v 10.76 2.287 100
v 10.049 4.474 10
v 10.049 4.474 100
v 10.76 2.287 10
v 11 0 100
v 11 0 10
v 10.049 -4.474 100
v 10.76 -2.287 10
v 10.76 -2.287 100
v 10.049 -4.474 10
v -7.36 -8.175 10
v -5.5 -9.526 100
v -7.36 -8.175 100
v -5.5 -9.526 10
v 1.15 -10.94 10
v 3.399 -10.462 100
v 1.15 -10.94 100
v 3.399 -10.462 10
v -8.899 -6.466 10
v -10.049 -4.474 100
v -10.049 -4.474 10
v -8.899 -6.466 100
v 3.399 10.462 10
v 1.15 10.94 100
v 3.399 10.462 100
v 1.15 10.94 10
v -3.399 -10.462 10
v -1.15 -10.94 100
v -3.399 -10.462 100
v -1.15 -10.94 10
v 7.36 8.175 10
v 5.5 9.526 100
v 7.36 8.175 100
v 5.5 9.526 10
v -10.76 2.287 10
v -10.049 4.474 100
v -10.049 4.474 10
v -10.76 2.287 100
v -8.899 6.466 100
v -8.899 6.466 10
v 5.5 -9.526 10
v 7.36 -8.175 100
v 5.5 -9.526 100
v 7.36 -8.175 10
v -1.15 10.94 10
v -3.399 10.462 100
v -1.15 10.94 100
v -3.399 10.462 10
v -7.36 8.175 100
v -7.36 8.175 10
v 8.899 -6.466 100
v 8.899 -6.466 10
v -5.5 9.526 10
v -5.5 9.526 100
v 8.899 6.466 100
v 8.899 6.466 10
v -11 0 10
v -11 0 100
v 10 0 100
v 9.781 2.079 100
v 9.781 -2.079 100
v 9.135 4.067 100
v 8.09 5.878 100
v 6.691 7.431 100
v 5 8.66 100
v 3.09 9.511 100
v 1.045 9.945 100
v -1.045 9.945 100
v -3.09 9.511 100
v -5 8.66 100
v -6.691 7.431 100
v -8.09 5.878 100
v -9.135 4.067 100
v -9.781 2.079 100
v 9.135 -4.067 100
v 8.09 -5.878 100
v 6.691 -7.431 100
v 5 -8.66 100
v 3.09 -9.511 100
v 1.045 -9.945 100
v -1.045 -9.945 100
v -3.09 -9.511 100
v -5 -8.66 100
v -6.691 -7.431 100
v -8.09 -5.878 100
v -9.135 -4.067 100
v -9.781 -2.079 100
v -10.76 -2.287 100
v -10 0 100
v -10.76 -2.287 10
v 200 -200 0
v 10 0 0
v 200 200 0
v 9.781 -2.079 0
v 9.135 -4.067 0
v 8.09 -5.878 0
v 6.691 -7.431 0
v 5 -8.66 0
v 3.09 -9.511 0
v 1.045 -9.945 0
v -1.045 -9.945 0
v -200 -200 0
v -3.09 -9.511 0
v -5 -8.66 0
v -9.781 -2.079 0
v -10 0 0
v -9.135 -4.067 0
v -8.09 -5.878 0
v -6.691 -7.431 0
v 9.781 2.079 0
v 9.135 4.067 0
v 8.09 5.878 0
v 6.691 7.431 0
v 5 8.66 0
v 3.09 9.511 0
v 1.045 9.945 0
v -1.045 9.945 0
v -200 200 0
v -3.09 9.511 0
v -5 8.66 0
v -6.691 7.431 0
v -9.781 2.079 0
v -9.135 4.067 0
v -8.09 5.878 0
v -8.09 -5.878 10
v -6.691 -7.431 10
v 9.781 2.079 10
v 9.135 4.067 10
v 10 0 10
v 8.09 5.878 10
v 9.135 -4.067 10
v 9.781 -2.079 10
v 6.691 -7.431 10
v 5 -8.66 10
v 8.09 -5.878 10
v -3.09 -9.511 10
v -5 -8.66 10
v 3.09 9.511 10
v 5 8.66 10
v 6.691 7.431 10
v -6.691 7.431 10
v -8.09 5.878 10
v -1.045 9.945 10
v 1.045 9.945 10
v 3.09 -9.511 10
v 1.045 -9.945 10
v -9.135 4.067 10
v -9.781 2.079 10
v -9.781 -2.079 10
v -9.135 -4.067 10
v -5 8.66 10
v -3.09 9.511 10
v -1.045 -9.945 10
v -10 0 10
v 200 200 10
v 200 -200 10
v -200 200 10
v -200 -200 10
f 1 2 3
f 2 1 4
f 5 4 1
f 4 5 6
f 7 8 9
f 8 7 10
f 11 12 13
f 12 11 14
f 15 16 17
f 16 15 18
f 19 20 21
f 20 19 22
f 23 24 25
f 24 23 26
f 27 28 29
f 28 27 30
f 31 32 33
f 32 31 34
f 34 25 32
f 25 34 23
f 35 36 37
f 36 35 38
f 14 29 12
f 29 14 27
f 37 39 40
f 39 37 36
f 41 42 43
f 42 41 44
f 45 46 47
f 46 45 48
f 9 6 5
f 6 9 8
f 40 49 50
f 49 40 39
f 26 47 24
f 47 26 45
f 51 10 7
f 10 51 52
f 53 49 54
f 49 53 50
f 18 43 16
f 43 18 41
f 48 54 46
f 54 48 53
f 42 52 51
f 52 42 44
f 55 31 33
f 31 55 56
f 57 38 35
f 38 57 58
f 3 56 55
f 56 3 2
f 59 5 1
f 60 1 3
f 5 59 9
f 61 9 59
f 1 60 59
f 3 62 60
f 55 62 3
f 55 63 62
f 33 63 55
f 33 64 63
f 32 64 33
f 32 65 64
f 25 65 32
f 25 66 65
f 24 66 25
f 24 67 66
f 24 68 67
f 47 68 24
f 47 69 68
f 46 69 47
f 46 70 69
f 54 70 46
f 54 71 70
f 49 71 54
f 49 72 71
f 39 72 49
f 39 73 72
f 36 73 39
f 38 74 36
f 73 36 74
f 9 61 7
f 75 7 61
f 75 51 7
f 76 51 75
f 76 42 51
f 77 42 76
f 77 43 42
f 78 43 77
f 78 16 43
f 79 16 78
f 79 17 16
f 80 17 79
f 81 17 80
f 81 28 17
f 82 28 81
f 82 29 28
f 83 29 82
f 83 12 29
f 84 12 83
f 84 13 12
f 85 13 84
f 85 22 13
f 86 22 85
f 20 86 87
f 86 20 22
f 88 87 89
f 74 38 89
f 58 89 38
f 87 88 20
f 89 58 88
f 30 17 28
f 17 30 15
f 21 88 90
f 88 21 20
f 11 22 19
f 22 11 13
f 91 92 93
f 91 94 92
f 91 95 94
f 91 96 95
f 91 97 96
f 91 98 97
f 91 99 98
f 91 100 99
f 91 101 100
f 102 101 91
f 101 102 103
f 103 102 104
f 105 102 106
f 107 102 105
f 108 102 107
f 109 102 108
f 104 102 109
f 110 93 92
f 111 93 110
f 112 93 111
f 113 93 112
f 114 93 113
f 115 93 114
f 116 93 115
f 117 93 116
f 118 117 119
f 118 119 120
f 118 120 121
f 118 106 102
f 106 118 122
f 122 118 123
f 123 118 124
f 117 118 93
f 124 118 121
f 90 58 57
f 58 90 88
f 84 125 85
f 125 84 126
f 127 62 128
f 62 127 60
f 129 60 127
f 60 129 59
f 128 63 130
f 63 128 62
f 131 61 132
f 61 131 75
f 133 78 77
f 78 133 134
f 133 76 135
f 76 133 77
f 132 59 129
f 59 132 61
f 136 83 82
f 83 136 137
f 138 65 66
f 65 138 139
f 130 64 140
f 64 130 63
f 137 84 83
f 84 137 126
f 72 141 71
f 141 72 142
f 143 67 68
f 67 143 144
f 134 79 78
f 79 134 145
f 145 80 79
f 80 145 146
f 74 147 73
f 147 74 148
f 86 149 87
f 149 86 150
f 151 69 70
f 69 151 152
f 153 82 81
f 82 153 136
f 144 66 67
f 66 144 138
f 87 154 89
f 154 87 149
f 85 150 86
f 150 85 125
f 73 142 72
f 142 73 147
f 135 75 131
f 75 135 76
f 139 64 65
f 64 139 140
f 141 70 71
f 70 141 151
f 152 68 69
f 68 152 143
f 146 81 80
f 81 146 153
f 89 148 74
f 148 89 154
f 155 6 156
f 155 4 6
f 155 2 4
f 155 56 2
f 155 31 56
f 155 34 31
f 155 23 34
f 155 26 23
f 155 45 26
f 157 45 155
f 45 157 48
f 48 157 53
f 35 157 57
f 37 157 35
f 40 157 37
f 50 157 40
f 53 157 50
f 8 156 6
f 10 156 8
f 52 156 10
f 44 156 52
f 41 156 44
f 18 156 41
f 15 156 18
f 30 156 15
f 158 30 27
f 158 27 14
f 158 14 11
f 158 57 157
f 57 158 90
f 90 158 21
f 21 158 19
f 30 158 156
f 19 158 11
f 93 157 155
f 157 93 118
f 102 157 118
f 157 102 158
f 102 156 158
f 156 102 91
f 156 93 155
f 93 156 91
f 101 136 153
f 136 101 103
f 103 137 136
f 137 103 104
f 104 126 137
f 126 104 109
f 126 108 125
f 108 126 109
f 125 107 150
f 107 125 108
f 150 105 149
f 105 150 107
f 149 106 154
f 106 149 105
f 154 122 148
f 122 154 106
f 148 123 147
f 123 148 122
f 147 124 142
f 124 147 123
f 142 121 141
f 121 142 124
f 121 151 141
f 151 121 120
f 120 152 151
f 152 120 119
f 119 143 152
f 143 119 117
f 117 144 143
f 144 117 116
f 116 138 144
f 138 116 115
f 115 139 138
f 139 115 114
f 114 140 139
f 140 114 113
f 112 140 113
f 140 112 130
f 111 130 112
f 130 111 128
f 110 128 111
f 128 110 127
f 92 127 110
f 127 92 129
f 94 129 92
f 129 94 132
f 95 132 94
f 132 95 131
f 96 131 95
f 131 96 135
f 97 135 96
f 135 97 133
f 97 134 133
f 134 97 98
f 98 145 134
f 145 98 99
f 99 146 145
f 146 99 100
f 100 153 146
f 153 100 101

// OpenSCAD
union(){
    difference(){
        cylinder(100,11,11);
        translate([0,0,-0.5])    
            cylinder(101,10,10);
    }
    linear_extrude(10)
        difference(){
            square([400,400],true);
            circle(10);    
        }
}
